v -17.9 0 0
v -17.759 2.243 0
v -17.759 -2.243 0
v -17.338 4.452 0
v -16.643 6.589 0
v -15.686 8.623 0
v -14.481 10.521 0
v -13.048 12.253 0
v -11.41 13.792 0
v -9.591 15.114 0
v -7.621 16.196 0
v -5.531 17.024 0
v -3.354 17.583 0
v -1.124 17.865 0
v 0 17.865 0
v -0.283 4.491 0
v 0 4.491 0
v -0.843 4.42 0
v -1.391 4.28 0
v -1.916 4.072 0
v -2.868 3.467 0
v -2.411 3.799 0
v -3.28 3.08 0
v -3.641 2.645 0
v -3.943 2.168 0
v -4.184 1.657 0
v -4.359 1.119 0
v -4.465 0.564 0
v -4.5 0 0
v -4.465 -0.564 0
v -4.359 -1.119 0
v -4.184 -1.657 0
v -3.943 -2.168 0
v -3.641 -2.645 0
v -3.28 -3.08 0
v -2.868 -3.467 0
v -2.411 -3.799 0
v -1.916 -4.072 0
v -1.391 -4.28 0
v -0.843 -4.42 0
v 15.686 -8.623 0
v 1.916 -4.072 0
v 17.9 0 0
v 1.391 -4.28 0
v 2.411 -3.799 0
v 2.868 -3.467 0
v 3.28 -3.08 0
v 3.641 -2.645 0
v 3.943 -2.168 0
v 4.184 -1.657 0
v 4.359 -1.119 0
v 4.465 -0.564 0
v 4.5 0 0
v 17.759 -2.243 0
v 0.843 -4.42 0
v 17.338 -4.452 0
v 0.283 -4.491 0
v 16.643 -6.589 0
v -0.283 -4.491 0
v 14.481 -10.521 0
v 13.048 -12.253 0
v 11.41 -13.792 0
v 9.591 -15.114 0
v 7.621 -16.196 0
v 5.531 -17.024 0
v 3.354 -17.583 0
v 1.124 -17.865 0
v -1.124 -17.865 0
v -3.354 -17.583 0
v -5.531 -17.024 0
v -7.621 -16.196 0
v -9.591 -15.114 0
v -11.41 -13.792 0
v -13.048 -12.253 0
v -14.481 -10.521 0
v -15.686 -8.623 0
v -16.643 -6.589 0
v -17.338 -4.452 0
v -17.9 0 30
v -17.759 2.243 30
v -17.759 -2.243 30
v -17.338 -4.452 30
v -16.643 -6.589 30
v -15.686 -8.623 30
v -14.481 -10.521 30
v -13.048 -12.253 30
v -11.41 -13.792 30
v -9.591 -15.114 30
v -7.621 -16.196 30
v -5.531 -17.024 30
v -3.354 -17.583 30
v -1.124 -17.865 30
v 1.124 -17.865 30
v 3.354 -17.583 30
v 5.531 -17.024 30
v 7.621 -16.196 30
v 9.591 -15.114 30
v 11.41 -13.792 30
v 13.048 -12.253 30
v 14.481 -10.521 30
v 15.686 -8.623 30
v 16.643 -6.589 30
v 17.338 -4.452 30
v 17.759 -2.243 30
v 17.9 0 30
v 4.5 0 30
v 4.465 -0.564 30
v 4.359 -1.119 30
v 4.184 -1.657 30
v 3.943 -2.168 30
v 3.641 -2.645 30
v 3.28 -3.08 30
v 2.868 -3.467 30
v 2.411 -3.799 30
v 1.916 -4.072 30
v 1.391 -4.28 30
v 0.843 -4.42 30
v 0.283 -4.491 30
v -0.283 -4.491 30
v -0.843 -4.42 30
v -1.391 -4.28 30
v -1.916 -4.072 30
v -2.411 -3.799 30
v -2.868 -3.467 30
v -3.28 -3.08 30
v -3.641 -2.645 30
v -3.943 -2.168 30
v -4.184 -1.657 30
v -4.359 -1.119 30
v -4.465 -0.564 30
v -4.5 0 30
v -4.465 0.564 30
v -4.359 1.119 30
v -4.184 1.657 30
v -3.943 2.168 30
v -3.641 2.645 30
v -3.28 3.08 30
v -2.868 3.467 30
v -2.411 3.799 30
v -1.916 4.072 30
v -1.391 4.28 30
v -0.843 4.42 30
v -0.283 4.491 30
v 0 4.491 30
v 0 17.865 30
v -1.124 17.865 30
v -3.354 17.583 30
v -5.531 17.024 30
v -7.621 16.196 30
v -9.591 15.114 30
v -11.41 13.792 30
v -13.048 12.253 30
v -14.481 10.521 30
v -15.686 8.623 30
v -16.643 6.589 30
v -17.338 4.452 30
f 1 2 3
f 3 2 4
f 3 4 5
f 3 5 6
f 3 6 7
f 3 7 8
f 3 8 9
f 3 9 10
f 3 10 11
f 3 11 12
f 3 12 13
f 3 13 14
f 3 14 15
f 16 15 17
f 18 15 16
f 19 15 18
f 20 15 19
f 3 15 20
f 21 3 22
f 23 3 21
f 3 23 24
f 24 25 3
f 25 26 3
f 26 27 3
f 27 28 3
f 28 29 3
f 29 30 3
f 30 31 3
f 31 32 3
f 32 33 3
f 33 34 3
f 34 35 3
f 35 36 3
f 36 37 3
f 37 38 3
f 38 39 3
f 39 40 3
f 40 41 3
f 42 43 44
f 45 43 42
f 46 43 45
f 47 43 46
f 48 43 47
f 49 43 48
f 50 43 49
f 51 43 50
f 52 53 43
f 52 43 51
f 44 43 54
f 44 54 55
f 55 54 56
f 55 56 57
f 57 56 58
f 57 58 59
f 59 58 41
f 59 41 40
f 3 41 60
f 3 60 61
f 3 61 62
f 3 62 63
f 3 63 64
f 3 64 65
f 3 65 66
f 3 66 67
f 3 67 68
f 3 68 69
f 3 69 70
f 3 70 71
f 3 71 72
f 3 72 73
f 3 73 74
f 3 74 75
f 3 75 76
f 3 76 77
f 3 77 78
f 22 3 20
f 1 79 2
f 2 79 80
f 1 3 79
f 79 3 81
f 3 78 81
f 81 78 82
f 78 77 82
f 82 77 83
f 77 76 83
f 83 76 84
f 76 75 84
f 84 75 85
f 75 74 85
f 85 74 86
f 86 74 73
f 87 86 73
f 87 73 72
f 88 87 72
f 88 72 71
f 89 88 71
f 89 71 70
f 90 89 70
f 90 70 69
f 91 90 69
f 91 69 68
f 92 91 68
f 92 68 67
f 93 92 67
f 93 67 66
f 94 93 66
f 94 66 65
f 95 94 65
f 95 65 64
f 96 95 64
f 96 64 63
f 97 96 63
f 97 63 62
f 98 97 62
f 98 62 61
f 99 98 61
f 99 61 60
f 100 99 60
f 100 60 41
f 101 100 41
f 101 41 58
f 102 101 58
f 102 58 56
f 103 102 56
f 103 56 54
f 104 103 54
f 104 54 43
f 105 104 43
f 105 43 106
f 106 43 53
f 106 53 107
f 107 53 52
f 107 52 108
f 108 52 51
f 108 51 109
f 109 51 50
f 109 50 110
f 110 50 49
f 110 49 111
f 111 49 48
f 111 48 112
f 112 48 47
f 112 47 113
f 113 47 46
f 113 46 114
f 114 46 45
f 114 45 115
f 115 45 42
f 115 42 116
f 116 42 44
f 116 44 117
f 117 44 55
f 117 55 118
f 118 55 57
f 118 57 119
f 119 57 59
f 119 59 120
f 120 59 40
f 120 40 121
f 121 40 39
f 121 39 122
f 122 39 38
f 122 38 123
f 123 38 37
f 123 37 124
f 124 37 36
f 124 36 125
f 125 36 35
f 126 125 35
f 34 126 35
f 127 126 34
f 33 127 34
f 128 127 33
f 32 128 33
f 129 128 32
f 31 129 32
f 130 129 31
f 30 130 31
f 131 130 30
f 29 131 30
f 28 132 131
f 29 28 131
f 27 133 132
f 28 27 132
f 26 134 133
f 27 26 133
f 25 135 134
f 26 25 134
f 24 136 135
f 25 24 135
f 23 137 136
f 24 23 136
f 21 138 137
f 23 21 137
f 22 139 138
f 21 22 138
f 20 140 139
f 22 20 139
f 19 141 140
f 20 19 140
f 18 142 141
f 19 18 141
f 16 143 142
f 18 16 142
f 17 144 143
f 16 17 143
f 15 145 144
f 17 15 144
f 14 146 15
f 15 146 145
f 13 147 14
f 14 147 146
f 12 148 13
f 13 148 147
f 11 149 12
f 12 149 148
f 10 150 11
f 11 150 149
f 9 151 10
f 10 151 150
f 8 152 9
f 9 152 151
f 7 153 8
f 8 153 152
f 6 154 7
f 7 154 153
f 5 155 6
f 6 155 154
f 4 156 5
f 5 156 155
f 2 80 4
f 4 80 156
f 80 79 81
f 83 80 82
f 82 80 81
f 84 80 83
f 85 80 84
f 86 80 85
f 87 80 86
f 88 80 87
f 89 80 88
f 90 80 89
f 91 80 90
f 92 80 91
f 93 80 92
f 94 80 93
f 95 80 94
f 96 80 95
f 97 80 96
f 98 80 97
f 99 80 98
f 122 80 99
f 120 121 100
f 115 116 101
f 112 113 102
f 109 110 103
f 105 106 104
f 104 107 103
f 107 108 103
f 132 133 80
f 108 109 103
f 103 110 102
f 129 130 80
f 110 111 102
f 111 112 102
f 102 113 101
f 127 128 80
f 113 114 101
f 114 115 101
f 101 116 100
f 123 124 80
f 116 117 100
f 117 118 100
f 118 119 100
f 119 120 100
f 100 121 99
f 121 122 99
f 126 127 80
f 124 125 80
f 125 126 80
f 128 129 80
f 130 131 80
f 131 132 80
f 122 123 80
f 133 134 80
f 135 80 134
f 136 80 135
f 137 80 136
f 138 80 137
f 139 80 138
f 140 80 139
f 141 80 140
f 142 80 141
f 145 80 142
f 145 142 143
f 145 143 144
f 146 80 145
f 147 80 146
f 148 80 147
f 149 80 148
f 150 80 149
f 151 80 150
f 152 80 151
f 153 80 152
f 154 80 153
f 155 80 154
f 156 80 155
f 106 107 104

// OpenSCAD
$fn=50;
r_out = 35.8/2;
r_in = 9/2;
h = 30;

difference(){
	cylinder(r=r_out,h=h);	
	cylinder(r=r_in,h=h);
	cube([r_out,r_out,h]);
}
